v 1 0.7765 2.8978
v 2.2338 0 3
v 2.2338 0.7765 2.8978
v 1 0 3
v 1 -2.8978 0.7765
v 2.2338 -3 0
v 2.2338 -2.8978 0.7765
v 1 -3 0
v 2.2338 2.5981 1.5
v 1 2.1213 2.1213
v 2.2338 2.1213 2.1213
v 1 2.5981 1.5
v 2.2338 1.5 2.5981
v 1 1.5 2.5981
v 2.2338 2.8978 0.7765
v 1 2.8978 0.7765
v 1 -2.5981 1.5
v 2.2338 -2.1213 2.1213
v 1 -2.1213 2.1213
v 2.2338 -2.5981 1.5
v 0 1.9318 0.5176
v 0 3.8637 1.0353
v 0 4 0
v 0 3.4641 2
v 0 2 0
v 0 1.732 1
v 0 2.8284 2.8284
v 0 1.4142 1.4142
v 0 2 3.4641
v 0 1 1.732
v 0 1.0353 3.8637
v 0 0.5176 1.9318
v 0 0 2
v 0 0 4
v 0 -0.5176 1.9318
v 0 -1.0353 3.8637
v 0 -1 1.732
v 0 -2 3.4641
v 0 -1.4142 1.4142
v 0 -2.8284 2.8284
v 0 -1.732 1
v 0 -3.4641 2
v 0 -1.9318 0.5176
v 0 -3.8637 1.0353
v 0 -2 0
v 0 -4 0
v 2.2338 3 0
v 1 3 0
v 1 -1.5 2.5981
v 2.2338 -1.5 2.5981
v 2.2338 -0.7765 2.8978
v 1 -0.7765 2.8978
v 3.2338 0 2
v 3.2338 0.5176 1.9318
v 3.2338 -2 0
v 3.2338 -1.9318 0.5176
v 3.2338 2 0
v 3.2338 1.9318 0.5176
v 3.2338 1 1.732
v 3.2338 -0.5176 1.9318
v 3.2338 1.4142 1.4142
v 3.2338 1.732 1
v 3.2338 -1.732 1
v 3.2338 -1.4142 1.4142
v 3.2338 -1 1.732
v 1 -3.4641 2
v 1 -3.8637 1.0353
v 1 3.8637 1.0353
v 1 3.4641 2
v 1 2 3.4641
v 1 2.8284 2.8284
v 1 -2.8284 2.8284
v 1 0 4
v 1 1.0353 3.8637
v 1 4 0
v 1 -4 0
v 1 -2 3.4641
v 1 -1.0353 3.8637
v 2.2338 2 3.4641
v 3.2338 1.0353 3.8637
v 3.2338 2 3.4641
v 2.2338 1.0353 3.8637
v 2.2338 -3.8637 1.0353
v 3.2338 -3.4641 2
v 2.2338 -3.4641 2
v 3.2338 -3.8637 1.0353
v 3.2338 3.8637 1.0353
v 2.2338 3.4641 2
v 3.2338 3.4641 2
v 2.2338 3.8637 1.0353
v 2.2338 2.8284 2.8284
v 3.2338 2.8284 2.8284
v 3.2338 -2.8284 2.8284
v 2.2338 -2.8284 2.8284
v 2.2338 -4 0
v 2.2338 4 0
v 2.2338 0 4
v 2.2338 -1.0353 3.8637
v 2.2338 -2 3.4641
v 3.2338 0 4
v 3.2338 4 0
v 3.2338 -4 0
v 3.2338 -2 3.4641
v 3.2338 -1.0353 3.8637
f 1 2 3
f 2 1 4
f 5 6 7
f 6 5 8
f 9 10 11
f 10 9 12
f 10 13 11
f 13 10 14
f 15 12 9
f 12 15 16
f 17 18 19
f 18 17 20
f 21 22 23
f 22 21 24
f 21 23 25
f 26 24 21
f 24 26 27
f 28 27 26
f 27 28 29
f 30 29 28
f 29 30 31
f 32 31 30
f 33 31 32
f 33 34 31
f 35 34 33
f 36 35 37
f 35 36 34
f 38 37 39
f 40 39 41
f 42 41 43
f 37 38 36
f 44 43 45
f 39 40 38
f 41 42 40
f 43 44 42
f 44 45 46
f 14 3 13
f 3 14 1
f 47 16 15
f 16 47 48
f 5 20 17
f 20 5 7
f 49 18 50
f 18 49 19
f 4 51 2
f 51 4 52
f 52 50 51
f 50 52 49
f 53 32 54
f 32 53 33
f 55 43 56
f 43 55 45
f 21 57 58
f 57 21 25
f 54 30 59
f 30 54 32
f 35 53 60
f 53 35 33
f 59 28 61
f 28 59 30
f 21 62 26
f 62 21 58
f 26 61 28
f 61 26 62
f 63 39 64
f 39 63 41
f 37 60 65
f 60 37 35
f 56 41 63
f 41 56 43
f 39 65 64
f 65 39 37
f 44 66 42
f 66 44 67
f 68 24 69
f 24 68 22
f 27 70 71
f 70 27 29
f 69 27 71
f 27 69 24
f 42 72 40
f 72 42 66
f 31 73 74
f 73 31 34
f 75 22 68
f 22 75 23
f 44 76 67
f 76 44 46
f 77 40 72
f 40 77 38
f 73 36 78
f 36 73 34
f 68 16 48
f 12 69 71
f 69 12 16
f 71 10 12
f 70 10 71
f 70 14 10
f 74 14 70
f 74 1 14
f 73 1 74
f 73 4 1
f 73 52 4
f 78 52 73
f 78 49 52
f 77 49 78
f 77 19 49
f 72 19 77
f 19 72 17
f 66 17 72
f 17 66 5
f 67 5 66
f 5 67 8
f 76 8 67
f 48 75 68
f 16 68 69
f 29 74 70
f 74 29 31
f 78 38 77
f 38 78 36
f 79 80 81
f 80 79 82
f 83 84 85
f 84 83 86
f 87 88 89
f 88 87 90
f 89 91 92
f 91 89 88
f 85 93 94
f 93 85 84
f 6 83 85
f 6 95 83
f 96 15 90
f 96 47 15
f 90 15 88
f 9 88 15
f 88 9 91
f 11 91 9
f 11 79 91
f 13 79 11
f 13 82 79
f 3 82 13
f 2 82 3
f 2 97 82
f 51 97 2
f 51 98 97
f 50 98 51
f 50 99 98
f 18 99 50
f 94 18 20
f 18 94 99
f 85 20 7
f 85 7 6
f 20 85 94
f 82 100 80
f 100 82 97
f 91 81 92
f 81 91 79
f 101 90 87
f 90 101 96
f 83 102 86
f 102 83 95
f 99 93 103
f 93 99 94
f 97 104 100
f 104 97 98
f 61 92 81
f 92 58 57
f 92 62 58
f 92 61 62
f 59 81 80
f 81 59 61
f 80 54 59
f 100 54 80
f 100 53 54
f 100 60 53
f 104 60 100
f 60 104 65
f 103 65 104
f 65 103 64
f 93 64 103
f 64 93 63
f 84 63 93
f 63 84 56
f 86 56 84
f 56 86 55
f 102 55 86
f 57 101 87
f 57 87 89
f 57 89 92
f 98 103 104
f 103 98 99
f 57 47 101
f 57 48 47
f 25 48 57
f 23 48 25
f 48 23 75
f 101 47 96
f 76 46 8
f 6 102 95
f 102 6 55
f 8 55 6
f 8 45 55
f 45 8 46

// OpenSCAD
// file: ../build_environments.scad
// build_environments.scad: modules to build level sections
//

module pool(diameter=10.0, wall_height=2.0, step_width=3.0, connections=[])
{
    difference() {
        union() {
        difference() {
            cylinder(h=0.5,r1=diameter+step_width,r2=diameter+step_width,$fn=48);
            translate([0,0,-0.1])
                cylinder(h=0.7,r1=diameter,r2=diameter,$fn=48);
        }
        difference() {
            cylinder(h=wall_height,r1=diameter+step_width+1.0,r2=diameter+step_width+1.0,$fn=48);
            translate([0,0,-0.1])
                cylinder(h=wall_height+0.2,r1=diameter+step_width,r2=diameter+step_width,$fn=48);
        }
        }
    
        for (c = connections)
        {
            rotate([0,90,0]) {
                angle = atan2(c[1],c[0]);
                rotate([-angle,0,0]) {
                    cylinder(h=diameter+5.0,r1=c[2],r2=c[2],$fn=48);
                }
            }
        }
    }
}

module straight(length=10.0, width=2.0, dy1=0.0, dy2=0.0, dz=0.0)
{
    dims = [0, 0, 0, 0, 0, (dz/length)];
    matrix = [
        [ 1, dims[0], dims[1], 0 ],
        [ dims[2], 1, dims[4], 0 ],
        [ dims[5], dims[3], 1, 0 ],
        [ 0, 0, 0, 1 ]
    ];
    multmatrix(matrix)
    difference() {
        translate([dy1,0,0])
        union() {
            rotate([0,90,0]) {
                difference() {
                    cylinder(h=(length-dy1-dy2),r1=width+1.0,r2=width+1.0,$fn=24);
                    translate([0,0,-0.1])
                        cylinder(h=(length-dy1-dy2+0.2),r1=width,r2=width,$fn=24);
                }
                difference() {
                    cylinder(h=1.0,r1=width+2.0,r2=width+2.0,$fn=24);
                    translate([0,0,-0.1])
                        cylinder(h=1.2,r1=width,r2=width,$fn=24);
                }
                translate([0,0,(length-dy1-dy2)-1.0]) {
                    difference() {
                        cylinder(h=1.0,r1=width+2.0,r2=width+2.0,$fn=24);
                        translate([0,0,-0.1])
                            cylinder(h=1.2,r1=width,r2=width,$fn=24);
                    }
                }
            }
        }
        translate([0,0,-(2*width+4.0)/2])
            cube([3*length,3*length,2*width+4.0],center=true);
    }
}

module curve(p0=[0,0], center=[0,0], dir=1, angle=0.0, width=2.0)
{
    radius = sqrt((p0[0]-center[0])*(p0[0]-center[0]) + (p0[1]-center[1])*(p0[1]-center[1]));
    if (dir == 0) {
        difference() {
            rotate([0,0,-90])
            difference() {
                rotate_extrude(angle = angle, convexity = 10, $fn=32)
                    translate([radius, 0, 0])
                        circle(r = width+1.0,$fn=24);
                rotate([0,0,-1.0])
                    rotate_extrude(angle = angle+2.0, convexity = 10, $fn=32)
                        translate([radius, 0, 0])
                            circle(r = width,$fn=24);
            }
            translate([0,0,-(2*width+4.0)/2])
                cube([5*radius,5*radius,2*width+4.0],center=true);
        }
    }
    else {
        difference() {
            rotate([0,0,90])
            difference() {
                rotate_extrude(angle = -angle, convexity = 10, $fn=32)
                    translate([radius, 0, 0])
                        circle(r = width+1.0,$fn=24);
                rotate([0,0,1.0])
                    rotate_extrude(angle = -angle-2.0, convexity = 10, $fn=32)
                        translate([radius, 0, 0])
                            circle(r = width,$fn=24);
            }
            translate([0,0,-(2*width+4.0)/2])
                cube([5*radius,5*radius,2*width+4.0],center=true);
        }
    }

}

// test pool
//pool(diameter=12.0000, wall_height=3.0000, step_width=3.0000, connections=[[0.0000,-26.0000,2.0000], [23.6074,0.0000,2.0000]]);

// test straight, slope
//straight(length=26.0000, width=2.0000, dy1=11.8322, dy2=6.7082, dz=0.0000);
//straight(length=29.1549, width=12.0000, dy1=0.0000, dy2=0.0000, dz=-15.0000);

// test curve
//curve(p0=[23.6074, 0.0000], center=[23.6074, 5.0000], dir=0, angle=60.1011, width=2.0000);
//curve(p0=[33.6426, 12.4219], center=[37.9771, 9.9295], dir=1, angle=120.4627, width=2.0000);
// main file
use <../build_environments.scad>;
straight(length=3.2338, width=2.0000, dy1=0.0000, dy2=0.0000, dz=0.0000);
